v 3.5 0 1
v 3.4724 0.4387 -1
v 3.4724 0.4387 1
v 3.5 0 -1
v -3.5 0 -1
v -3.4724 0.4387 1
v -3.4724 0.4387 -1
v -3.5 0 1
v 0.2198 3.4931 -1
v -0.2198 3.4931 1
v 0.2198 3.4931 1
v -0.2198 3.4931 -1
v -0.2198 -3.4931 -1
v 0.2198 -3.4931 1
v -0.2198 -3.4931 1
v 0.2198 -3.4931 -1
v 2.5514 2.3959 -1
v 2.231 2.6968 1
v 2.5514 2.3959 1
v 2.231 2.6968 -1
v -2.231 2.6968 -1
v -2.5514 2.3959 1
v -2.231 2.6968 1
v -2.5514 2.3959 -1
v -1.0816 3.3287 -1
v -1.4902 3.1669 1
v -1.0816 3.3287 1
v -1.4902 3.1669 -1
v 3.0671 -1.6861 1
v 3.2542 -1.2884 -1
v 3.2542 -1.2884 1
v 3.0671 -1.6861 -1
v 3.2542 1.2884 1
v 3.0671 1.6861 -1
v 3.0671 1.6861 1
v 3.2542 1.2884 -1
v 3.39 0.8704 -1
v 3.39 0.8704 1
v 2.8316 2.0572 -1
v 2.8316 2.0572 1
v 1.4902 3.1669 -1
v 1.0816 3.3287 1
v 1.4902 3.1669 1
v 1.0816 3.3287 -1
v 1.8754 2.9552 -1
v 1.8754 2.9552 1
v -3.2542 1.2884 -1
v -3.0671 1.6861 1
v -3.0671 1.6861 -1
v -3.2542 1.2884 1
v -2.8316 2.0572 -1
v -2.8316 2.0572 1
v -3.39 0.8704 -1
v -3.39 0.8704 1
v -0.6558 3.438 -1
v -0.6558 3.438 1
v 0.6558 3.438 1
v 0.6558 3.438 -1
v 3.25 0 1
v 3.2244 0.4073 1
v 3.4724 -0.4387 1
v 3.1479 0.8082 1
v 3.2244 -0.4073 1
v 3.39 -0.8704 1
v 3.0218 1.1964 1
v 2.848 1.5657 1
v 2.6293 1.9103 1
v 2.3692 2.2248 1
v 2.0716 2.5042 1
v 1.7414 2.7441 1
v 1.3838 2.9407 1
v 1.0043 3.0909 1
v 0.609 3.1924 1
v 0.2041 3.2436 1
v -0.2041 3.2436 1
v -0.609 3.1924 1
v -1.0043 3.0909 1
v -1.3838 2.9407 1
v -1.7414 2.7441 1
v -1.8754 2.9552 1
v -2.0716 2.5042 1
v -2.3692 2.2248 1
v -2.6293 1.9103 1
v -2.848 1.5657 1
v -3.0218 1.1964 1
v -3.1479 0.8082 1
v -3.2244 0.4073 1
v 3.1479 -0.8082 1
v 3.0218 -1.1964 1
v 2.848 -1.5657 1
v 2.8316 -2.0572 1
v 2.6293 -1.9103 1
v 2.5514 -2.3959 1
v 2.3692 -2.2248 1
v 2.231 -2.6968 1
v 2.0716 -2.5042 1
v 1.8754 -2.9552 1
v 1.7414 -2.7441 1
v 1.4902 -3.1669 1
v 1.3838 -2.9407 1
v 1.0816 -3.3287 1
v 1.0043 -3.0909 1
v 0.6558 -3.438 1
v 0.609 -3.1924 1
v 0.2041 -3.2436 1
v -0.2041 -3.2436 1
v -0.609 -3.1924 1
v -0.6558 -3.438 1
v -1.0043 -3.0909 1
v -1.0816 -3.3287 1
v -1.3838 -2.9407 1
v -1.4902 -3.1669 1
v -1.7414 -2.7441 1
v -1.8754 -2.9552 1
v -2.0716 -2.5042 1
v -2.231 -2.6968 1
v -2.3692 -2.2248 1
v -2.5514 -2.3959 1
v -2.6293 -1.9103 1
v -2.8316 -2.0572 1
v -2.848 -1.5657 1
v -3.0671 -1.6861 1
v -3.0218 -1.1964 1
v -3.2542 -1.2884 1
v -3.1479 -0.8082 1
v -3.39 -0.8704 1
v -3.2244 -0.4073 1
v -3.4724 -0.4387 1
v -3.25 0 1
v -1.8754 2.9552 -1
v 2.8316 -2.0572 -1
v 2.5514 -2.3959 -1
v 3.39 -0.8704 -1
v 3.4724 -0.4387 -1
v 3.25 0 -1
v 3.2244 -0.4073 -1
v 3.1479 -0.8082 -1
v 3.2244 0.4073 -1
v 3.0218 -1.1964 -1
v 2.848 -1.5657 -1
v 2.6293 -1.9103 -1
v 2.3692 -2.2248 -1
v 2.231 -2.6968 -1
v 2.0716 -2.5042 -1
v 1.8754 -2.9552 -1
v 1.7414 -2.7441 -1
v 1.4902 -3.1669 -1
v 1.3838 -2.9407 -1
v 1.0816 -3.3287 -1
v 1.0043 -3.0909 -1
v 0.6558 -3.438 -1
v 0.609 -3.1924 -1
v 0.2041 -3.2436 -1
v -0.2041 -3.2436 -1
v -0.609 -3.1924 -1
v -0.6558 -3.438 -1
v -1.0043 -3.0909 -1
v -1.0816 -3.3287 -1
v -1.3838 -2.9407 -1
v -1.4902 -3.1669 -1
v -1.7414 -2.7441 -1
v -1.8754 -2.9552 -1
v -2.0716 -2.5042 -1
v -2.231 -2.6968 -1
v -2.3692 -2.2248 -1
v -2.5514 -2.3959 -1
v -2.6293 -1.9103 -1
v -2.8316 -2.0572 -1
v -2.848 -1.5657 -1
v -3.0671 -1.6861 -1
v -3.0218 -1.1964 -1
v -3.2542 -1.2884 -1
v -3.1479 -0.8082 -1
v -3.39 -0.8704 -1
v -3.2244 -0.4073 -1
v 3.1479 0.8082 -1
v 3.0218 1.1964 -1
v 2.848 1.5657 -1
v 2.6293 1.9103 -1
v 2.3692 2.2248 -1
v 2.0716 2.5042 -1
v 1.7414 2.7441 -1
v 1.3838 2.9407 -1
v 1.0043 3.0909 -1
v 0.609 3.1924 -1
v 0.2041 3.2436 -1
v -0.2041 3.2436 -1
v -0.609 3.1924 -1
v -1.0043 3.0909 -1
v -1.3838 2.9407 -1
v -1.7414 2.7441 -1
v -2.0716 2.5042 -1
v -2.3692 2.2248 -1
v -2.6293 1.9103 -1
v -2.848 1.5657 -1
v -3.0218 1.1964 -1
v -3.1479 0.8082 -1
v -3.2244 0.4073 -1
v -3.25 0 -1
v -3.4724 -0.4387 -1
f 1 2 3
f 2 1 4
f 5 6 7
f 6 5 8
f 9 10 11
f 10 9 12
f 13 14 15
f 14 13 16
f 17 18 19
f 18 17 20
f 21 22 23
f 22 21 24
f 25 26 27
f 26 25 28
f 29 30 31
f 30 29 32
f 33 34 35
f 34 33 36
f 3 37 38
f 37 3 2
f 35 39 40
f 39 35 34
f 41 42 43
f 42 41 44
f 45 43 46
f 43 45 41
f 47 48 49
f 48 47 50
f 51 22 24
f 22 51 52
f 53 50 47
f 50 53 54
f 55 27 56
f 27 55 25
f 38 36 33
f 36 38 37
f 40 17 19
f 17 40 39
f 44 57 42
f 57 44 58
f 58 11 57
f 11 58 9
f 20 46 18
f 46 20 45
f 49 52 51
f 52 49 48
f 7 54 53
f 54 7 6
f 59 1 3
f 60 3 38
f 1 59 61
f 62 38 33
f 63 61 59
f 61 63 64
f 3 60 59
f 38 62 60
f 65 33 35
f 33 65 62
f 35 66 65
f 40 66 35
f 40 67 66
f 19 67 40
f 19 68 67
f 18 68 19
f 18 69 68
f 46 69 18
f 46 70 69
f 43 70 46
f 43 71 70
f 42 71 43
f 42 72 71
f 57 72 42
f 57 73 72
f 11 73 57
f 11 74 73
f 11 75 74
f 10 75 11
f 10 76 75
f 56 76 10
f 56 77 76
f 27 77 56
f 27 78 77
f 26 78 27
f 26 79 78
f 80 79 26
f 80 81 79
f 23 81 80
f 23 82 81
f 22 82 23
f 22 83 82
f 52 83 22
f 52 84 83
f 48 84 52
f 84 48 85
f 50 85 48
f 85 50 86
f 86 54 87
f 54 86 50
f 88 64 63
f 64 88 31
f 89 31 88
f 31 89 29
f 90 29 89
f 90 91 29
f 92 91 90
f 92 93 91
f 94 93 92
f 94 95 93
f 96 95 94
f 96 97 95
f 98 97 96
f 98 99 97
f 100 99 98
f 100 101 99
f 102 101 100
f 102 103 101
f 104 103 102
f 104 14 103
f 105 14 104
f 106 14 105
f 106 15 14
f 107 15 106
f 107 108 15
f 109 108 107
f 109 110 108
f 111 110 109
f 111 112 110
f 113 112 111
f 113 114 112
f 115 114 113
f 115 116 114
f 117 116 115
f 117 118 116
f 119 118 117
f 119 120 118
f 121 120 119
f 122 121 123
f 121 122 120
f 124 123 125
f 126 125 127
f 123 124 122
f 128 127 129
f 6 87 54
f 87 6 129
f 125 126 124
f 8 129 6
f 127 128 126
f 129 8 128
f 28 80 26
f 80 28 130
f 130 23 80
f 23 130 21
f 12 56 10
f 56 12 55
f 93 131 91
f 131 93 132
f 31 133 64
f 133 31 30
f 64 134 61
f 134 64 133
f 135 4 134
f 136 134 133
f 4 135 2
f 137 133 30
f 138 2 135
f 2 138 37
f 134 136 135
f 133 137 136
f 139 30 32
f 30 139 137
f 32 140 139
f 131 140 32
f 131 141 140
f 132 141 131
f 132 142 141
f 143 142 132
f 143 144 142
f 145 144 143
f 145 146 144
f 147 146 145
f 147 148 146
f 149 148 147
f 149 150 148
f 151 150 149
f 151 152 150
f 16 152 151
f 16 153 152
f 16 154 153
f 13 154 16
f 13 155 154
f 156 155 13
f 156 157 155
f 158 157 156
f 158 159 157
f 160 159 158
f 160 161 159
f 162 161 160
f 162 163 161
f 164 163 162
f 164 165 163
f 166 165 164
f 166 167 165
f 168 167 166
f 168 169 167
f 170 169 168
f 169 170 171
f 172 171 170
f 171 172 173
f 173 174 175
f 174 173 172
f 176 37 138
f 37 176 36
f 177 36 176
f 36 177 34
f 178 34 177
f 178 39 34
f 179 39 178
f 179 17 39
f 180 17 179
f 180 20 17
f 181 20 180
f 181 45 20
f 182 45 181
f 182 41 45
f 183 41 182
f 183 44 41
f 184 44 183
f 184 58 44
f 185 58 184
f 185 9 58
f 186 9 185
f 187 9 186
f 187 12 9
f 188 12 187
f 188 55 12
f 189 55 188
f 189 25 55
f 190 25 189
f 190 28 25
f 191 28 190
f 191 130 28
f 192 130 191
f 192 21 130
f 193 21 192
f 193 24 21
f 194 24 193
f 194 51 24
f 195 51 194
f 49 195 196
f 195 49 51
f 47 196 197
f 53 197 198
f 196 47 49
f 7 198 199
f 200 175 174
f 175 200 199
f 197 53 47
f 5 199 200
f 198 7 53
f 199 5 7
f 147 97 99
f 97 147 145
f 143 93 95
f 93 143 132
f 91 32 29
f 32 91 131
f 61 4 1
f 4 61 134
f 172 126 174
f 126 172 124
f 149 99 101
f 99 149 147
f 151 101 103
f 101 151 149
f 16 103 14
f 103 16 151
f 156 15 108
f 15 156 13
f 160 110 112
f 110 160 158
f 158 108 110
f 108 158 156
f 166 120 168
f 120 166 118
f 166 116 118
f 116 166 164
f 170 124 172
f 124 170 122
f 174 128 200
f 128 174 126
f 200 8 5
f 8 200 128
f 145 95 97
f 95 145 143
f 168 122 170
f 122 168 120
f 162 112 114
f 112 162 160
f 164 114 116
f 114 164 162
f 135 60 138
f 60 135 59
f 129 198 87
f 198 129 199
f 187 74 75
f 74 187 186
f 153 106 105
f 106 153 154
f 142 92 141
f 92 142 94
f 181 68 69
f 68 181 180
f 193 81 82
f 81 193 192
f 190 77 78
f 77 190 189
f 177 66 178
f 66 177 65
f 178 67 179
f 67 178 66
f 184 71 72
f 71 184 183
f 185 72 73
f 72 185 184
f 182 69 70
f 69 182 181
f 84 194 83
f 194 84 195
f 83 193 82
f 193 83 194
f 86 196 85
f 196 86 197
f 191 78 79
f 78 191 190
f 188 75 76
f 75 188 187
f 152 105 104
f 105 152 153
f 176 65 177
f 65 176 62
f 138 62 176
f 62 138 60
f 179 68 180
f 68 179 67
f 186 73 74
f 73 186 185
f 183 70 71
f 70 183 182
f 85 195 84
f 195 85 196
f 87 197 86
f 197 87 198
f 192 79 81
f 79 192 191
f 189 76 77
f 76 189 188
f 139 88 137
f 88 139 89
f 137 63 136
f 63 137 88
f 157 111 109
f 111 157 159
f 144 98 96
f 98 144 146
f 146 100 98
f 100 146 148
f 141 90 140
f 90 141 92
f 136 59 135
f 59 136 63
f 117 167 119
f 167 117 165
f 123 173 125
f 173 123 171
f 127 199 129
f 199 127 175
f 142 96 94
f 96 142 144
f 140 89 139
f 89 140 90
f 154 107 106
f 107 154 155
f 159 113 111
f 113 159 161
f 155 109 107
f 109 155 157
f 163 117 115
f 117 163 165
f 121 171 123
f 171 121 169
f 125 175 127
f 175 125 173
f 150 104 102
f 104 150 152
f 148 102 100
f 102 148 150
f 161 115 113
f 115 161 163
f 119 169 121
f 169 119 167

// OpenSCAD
$fn = 50;


difference() {
	union() {
		translate(v = [0, 0, -1.0000000000]) {
			cylinder(h = 2, r = 3.5000000000);
		}
	}
	union() {
		translate(v = [0, 0, -100.0000000000]) {
			cylinder(h = 200, r = 3.2500000000);
		}
	}
}
